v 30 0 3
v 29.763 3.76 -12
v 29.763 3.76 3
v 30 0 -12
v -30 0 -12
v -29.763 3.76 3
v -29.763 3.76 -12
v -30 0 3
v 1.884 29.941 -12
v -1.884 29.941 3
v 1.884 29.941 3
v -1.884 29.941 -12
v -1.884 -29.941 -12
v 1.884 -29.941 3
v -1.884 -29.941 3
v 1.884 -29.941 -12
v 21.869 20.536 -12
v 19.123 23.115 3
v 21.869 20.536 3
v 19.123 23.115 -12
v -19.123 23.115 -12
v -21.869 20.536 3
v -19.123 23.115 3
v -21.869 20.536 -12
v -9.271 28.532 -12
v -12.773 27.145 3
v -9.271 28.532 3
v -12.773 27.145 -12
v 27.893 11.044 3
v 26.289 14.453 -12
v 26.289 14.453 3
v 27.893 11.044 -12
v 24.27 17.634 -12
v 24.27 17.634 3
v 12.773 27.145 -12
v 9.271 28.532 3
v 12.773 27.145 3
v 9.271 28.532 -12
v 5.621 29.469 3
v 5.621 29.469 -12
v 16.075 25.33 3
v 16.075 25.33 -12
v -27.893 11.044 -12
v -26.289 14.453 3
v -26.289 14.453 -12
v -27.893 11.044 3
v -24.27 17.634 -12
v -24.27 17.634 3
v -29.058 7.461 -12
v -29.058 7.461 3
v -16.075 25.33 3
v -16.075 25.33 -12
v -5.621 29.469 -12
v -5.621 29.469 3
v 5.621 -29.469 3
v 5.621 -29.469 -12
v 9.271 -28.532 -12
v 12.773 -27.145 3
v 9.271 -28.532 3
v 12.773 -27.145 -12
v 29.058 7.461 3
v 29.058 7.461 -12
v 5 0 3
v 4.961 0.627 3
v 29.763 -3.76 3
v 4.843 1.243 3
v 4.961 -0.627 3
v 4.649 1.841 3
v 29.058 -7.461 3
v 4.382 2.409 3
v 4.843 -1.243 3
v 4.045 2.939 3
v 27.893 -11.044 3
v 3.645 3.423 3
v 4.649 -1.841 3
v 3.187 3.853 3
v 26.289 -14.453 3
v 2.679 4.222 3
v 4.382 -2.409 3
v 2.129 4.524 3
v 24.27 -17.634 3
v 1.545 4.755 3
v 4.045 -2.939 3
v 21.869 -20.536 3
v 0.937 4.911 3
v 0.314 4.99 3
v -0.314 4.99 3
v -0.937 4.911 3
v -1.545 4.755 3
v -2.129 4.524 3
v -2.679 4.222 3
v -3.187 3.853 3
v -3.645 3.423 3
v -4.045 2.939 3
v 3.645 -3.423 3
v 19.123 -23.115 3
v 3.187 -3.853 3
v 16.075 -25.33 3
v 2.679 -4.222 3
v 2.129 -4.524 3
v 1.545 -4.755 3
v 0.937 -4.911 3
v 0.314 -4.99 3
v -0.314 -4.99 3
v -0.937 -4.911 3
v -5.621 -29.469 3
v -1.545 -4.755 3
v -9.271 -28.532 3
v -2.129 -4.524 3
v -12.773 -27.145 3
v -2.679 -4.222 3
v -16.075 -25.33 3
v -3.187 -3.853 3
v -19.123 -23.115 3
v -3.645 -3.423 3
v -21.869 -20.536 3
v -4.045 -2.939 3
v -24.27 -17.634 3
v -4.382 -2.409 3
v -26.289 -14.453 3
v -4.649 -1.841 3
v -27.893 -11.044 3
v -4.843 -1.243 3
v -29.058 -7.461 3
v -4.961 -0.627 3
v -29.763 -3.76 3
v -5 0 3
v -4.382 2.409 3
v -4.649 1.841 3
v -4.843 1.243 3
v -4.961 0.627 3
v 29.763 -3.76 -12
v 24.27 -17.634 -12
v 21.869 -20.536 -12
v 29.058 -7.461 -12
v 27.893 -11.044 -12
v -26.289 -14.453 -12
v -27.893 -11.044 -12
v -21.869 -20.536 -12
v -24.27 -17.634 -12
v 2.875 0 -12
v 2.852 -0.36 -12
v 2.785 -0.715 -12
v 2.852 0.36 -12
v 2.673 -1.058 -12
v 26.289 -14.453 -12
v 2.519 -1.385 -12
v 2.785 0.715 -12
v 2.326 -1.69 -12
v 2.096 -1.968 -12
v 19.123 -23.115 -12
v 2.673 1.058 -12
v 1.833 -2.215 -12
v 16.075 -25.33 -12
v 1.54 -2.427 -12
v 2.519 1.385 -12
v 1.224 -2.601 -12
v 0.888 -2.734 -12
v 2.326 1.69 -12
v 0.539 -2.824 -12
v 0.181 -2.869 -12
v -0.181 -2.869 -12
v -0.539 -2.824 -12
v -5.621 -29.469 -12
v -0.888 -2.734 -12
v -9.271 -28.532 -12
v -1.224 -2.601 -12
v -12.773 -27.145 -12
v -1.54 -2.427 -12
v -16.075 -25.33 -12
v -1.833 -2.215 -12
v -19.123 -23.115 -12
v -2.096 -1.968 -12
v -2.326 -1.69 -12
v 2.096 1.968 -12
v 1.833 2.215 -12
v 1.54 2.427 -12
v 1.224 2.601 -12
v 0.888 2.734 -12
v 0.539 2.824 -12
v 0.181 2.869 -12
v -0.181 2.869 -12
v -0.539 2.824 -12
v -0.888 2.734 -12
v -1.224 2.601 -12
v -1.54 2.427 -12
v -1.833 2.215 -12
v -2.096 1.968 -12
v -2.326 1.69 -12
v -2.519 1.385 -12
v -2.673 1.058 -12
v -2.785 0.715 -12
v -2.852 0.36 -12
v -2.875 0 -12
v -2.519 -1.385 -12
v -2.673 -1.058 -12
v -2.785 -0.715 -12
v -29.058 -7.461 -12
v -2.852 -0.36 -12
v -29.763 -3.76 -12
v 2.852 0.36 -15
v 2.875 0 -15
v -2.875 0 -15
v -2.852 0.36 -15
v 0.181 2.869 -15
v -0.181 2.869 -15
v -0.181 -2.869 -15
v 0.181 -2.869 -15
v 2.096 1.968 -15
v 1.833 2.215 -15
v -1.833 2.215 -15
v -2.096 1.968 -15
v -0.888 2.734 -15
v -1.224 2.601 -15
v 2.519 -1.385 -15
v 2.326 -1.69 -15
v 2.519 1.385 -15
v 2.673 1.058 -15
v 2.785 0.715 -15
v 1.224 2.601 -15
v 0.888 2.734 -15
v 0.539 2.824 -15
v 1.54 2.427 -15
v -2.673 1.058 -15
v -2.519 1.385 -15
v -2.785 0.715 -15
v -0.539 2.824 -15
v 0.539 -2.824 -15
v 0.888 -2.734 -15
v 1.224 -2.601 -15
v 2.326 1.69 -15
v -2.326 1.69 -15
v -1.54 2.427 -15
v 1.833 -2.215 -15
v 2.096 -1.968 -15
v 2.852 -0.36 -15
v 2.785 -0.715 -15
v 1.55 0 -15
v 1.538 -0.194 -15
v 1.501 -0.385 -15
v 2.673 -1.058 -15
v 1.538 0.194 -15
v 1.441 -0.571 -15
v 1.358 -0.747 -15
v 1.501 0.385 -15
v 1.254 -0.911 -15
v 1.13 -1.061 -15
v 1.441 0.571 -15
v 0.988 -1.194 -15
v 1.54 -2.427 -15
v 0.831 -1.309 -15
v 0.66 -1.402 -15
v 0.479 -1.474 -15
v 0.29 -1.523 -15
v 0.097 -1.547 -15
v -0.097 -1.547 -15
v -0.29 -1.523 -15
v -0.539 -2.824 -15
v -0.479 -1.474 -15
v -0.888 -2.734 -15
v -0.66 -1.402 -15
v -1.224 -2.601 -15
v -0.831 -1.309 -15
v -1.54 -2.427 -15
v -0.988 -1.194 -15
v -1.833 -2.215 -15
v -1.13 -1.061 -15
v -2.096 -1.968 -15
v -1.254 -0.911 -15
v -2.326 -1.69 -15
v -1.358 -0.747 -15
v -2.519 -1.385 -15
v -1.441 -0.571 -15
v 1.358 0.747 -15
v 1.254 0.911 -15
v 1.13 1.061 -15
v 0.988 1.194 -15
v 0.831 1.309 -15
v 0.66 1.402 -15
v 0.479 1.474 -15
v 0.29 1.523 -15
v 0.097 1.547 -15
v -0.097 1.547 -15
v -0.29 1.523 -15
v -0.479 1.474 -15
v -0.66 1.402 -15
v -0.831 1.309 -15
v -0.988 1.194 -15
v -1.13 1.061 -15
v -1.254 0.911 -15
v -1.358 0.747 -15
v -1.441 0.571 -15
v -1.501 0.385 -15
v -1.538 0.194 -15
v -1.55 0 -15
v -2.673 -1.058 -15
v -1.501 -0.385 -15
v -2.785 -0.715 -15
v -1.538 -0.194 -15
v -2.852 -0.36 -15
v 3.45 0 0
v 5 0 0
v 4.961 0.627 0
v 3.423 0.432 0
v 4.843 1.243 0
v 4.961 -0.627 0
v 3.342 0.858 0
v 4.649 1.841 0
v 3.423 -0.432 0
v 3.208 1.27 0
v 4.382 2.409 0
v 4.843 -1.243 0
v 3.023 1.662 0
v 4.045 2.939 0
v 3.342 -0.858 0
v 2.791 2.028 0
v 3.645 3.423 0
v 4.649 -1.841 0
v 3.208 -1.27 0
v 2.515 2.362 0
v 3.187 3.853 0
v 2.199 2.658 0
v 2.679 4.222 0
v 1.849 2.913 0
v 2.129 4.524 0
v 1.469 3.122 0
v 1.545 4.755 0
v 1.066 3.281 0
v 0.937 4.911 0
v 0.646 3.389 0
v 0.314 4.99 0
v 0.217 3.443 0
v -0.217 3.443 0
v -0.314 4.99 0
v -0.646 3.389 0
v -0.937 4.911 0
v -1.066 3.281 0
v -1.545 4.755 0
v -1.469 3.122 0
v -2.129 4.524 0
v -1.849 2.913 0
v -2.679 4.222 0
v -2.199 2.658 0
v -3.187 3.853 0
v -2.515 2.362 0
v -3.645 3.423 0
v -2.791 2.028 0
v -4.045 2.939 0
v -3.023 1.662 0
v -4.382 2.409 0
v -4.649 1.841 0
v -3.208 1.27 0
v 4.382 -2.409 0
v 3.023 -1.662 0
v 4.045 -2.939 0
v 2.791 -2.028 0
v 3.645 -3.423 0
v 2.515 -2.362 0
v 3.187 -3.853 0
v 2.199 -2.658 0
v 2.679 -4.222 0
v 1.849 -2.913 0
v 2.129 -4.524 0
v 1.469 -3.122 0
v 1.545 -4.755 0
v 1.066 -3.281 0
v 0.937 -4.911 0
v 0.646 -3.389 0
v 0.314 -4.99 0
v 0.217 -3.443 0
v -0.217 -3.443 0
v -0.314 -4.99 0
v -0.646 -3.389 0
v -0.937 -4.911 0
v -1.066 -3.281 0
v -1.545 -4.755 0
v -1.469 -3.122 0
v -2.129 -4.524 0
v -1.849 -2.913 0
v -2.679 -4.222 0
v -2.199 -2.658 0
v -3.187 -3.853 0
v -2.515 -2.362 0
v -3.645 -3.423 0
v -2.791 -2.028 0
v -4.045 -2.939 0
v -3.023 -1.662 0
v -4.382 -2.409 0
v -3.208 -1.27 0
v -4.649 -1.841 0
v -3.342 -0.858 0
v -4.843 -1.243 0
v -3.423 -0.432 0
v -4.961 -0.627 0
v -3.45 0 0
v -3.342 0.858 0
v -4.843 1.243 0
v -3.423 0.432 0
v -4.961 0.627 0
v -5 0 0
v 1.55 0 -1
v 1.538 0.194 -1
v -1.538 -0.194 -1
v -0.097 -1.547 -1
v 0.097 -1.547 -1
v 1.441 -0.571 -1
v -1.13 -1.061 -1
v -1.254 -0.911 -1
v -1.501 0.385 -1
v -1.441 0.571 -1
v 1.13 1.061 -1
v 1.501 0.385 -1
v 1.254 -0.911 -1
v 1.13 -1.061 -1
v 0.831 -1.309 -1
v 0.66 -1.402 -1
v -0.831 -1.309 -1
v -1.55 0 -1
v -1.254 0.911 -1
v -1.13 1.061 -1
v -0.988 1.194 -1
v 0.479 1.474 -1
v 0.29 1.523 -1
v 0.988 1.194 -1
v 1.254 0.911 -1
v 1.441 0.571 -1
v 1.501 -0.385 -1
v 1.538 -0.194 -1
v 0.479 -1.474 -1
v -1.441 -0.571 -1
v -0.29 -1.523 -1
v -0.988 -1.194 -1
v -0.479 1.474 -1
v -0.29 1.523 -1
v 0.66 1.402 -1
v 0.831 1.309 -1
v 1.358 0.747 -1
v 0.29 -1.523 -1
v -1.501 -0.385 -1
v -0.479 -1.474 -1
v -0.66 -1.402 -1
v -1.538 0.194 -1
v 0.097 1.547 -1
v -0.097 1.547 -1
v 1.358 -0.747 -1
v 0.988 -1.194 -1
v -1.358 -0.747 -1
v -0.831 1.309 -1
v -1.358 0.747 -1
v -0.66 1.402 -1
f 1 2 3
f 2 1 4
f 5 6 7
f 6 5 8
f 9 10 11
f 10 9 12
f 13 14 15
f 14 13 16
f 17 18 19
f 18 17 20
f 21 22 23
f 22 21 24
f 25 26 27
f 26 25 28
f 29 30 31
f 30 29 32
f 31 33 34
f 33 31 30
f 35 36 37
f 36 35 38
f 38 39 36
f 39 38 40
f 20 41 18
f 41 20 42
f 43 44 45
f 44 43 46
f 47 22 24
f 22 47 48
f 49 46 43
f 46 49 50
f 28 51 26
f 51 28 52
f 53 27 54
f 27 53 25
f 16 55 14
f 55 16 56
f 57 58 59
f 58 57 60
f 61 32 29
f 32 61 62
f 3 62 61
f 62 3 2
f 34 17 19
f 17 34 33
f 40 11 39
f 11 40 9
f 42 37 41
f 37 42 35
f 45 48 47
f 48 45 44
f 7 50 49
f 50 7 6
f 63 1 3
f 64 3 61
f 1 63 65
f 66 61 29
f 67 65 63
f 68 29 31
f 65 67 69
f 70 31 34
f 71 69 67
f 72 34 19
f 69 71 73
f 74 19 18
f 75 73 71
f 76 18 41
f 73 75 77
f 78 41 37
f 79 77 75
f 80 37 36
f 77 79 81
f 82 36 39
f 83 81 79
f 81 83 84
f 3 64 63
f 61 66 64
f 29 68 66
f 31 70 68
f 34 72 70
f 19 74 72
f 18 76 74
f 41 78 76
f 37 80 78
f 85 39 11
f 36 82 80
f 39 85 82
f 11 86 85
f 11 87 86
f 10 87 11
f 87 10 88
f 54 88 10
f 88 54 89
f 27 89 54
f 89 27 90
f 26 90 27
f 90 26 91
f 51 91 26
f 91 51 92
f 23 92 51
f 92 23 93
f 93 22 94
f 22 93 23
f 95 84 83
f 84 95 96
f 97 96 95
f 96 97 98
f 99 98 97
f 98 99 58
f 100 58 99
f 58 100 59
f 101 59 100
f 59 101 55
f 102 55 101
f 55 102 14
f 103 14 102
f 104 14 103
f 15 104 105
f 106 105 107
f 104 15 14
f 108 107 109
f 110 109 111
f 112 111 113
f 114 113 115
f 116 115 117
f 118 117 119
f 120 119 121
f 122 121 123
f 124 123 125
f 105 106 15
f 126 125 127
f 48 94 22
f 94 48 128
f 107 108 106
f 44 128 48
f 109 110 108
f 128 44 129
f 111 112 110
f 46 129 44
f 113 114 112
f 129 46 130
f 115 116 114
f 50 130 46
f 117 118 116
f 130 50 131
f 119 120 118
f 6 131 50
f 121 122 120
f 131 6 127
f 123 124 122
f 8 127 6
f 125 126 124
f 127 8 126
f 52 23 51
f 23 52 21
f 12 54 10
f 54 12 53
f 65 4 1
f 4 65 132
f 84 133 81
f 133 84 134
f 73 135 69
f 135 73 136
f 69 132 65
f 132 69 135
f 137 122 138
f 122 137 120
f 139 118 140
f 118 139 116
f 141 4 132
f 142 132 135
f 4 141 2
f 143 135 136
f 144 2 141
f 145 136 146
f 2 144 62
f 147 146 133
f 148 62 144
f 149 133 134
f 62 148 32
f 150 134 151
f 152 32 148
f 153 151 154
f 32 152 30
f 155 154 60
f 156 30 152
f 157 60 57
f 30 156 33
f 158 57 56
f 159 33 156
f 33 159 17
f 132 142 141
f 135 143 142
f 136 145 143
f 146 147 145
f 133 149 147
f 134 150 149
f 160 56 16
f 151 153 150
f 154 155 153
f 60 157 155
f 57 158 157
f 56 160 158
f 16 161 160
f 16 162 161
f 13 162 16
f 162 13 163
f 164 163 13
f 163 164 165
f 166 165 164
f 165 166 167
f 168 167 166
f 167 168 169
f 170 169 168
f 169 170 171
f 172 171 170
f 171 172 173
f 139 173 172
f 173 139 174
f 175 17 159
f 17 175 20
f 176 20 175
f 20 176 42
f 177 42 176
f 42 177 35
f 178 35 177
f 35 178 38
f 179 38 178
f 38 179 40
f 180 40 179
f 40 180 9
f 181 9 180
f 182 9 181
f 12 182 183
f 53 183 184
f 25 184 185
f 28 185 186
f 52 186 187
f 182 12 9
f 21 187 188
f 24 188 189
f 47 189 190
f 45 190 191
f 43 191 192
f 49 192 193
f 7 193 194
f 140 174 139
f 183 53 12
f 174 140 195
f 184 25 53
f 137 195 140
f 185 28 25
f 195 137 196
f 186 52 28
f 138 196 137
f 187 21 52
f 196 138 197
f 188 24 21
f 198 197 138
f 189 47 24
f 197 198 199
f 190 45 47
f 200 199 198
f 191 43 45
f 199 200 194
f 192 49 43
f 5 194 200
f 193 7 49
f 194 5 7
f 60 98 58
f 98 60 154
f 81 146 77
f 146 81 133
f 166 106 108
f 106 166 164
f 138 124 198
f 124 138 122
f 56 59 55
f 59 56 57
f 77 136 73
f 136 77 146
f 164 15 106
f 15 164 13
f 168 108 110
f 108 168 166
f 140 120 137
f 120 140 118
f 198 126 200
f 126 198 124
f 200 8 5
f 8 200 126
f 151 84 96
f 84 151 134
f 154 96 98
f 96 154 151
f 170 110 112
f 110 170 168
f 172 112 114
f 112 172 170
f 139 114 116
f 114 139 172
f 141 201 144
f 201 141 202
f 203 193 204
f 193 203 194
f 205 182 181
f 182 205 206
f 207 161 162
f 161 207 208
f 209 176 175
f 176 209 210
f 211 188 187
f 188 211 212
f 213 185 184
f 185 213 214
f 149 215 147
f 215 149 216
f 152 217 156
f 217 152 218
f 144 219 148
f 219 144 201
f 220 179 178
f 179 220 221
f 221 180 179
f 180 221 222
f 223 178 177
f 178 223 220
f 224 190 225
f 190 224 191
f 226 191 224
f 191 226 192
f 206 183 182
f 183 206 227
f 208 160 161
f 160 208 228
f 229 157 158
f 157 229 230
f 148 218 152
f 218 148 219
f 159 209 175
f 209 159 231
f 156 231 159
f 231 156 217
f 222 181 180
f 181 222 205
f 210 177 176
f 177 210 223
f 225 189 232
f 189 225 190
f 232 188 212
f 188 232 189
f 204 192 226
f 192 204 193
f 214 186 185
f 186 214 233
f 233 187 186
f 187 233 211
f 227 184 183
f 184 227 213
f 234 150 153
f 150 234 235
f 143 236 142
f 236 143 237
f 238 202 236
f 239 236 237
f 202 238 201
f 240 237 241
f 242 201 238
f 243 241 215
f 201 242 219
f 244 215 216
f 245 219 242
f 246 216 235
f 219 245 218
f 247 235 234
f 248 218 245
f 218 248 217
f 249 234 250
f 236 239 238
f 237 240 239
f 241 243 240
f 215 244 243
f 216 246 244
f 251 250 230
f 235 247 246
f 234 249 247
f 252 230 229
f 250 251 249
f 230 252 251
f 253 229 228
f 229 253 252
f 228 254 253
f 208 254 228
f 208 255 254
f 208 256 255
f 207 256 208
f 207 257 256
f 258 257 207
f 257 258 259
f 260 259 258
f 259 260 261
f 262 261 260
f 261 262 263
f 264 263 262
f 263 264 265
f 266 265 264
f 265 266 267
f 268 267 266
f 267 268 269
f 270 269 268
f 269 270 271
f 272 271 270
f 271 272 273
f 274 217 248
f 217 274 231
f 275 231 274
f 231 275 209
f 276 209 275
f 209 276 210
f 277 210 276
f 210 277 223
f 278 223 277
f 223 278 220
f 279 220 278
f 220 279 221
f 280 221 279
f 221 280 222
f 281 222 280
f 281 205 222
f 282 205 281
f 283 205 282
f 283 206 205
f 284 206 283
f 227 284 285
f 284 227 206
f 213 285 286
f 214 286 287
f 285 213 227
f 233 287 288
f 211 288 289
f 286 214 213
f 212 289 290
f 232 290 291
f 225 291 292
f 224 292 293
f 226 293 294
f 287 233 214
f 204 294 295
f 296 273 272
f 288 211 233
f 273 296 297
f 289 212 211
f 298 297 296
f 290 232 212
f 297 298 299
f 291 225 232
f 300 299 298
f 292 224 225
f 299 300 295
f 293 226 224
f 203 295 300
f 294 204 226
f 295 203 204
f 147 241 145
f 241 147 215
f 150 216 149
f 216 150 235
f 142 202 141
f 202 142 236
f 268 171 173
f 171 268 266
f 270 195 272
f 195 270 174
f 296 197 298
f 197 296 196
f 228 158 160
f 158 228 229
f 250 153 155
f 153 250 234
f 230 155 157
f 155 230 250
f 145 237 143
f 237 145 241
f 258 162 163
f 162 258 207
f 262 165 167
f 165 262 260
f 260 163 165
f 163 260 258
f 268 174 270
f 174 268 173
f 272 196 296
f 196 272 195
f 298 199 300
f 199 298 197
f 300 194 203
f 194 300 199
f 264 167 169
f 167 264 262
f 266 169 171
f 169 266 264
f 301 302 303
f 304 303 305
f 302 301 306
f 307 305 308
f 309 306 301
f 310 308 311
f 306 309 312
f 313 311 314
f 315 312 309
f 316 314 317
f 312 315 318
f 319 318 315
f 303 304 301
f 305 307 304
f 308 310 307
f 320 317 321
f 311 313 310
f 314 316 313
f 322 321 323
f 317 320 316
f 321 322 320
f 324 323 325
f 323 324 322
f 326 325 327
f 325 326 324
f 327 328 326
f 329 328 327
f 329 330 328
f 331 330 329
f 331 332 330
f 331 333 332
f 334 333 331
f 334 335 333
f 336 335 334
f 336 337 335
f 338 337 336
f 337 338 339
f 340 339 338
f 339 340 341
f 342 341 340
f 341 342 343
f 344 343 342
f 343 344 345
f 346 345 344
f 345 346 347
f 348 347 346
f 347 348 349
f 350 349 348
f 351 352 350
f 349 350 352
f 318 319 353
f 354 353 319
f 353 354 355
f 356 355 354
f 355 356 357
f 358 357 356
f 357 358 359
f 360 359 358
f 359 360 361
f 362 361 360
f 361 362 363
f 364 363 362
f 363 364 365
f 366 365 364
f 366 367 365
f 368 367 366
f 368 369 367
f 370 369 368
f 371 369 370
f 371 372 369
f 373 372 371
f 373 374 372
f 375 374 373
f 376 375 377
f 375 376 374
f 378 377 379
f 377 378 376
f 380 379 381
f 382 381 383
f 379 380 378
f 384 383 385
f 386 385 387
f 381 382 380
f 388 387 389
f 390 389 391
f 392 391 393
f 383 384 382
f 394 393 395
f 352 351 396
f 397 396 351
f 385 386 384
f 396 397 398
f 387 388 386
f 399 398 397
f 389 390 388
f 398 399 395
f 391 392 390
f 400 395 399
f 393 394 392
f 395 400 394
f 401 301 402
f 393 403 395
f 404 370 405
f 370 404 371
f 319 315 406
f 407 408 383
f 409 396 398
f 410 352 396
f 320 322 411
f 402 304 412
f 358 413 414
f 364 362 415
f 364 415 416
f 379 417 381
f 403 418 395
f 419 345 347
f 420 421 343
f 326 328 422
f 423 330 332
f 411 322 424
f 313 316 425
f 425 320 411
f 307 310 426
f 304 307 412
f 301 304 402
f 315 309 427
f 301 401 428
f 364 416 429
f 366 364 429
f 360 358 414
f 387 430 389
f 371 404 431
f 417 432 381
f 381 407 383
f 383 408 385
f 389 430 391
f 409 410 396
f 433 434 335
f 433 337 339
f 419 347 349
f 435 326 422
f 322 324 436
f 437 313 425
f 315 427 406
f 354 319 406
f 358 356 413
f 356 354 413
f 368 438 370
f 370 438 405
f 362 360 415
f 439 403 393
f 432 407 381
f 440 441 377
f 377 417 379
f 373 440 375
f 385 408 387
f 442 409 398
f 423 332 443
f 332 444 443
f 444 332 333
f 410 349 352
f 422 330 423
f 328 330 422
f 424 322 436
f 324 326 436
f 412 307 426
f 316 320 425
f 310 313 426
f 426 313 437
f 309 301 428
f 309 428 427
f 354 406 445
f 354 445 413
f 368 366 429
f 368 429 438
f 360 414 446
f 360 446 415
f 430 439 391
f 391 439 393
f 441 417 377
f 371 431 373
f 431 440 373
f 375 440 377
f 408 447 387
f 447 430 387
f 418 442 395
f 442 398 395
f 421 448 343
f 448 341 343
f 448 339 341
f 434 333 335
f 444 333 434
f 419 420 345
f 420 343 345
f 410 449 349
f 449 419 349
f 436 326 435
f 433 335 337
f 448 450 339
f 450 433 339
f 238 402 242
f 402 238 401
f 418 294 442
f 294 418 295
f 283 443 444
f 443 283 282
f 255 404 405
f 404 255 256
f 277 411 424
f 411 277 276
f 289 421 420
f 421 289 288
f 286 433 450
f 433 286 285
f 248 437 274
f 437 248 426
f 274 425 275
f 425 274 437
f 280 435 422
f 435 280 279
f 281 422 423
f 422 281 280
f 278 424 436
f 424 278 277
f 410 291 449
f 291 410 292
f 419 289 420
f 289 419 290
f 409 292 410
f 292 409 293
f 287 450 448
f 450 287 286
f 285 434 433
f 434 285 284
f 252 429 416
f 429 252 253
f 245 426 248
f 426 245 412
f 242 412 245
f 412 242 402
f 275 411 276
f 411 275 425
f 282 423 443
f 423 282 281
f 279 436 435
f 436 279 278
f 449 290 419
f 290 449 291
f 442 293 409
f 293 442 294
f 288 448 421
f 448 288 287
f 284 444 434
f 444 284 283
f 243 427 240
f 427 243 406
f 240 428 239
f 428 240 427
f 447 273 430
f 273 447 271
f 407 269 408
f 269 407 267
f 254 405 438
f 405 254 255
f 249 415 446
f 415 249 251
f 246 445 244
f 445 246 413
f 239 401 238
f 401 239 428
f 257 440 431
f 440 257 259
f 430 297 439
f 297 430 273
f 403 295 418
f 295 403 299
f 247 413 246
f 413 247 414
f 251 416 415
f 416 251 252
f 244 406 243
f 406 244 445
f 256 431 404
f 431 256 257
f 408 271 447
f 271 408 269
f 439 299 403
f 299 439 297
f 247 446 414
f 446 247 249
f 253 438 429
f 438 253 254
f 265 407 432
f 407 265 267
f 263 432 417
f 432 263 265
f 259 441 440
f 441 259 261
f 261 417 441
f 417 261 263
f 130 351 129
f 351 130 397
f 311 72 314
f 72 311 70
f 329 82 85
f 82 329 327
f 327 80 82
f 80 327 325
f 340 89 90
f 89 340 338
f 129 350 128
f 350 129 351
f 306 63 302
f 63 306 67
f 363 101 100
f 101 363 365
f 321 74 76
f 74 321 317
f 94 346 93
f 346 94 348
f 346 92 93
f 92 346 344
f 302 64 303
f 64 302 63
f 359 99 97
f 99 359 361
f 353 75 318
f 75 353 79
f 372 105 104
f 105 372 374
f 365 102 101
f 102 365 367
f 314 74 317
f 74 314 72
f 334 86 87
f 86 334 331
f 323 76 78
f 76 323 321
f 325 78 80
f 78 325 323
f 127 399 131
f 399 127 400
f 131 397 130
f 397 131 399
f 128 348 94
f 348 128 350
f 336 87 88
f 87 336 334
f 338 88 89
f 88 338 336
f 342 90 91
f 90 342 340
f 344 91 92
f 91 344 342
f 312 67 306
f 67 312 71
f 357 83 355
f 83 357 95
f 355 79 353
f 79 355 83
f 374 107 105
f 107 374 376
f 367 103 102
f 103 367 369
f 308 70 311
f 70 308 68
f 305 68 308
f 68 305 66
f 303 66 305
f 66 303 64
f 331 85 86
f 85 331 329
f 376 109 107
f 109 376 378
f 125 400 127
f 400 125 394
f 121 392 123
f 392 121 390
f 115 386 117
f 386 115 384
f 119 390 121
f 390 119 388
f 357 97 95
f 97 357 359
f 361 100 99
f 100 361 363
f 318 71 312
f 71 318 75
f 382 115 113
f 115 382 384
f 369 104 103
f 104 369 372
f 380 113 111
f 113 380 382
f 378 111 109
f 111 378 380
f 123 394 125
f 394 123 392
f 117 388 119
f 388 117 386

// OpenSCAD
$fn = 50;

difference() {
	union() {
		translate(v = [0, 0, -12.0]) {
			cylinder(h = 15, r = 30.0);
		}
		#translate(v = [0, 0, -15.0]) {
			cylinder(h = 15, r = 2.875);
		}
	}
	union() {
		translate(v = [0, 0, 0]) {
			rotate(a = [0, 0, 0]) {
				difference() {
					union() {
						translate(v = [0, 0, -15.0]) {
							cylinder(h = 15, r = 1.25);
						}
						translate(v = [0, 0, -1.0]) {
							cylinder(h = 1.0, r1 = 1.55, r2 = 3.45);
						}
						translate(v = [0, 0, -15.0]) {
							cylinder(h = 15, r = 1.55);
						}
						translate(v = [0, 0, -15.0]) {
							cylinder(h = 15, r = 1.25);
						}
					}
					union();
				}
			}
		}
		#cylinder(h = 3, r = 5.0);
	}
}
